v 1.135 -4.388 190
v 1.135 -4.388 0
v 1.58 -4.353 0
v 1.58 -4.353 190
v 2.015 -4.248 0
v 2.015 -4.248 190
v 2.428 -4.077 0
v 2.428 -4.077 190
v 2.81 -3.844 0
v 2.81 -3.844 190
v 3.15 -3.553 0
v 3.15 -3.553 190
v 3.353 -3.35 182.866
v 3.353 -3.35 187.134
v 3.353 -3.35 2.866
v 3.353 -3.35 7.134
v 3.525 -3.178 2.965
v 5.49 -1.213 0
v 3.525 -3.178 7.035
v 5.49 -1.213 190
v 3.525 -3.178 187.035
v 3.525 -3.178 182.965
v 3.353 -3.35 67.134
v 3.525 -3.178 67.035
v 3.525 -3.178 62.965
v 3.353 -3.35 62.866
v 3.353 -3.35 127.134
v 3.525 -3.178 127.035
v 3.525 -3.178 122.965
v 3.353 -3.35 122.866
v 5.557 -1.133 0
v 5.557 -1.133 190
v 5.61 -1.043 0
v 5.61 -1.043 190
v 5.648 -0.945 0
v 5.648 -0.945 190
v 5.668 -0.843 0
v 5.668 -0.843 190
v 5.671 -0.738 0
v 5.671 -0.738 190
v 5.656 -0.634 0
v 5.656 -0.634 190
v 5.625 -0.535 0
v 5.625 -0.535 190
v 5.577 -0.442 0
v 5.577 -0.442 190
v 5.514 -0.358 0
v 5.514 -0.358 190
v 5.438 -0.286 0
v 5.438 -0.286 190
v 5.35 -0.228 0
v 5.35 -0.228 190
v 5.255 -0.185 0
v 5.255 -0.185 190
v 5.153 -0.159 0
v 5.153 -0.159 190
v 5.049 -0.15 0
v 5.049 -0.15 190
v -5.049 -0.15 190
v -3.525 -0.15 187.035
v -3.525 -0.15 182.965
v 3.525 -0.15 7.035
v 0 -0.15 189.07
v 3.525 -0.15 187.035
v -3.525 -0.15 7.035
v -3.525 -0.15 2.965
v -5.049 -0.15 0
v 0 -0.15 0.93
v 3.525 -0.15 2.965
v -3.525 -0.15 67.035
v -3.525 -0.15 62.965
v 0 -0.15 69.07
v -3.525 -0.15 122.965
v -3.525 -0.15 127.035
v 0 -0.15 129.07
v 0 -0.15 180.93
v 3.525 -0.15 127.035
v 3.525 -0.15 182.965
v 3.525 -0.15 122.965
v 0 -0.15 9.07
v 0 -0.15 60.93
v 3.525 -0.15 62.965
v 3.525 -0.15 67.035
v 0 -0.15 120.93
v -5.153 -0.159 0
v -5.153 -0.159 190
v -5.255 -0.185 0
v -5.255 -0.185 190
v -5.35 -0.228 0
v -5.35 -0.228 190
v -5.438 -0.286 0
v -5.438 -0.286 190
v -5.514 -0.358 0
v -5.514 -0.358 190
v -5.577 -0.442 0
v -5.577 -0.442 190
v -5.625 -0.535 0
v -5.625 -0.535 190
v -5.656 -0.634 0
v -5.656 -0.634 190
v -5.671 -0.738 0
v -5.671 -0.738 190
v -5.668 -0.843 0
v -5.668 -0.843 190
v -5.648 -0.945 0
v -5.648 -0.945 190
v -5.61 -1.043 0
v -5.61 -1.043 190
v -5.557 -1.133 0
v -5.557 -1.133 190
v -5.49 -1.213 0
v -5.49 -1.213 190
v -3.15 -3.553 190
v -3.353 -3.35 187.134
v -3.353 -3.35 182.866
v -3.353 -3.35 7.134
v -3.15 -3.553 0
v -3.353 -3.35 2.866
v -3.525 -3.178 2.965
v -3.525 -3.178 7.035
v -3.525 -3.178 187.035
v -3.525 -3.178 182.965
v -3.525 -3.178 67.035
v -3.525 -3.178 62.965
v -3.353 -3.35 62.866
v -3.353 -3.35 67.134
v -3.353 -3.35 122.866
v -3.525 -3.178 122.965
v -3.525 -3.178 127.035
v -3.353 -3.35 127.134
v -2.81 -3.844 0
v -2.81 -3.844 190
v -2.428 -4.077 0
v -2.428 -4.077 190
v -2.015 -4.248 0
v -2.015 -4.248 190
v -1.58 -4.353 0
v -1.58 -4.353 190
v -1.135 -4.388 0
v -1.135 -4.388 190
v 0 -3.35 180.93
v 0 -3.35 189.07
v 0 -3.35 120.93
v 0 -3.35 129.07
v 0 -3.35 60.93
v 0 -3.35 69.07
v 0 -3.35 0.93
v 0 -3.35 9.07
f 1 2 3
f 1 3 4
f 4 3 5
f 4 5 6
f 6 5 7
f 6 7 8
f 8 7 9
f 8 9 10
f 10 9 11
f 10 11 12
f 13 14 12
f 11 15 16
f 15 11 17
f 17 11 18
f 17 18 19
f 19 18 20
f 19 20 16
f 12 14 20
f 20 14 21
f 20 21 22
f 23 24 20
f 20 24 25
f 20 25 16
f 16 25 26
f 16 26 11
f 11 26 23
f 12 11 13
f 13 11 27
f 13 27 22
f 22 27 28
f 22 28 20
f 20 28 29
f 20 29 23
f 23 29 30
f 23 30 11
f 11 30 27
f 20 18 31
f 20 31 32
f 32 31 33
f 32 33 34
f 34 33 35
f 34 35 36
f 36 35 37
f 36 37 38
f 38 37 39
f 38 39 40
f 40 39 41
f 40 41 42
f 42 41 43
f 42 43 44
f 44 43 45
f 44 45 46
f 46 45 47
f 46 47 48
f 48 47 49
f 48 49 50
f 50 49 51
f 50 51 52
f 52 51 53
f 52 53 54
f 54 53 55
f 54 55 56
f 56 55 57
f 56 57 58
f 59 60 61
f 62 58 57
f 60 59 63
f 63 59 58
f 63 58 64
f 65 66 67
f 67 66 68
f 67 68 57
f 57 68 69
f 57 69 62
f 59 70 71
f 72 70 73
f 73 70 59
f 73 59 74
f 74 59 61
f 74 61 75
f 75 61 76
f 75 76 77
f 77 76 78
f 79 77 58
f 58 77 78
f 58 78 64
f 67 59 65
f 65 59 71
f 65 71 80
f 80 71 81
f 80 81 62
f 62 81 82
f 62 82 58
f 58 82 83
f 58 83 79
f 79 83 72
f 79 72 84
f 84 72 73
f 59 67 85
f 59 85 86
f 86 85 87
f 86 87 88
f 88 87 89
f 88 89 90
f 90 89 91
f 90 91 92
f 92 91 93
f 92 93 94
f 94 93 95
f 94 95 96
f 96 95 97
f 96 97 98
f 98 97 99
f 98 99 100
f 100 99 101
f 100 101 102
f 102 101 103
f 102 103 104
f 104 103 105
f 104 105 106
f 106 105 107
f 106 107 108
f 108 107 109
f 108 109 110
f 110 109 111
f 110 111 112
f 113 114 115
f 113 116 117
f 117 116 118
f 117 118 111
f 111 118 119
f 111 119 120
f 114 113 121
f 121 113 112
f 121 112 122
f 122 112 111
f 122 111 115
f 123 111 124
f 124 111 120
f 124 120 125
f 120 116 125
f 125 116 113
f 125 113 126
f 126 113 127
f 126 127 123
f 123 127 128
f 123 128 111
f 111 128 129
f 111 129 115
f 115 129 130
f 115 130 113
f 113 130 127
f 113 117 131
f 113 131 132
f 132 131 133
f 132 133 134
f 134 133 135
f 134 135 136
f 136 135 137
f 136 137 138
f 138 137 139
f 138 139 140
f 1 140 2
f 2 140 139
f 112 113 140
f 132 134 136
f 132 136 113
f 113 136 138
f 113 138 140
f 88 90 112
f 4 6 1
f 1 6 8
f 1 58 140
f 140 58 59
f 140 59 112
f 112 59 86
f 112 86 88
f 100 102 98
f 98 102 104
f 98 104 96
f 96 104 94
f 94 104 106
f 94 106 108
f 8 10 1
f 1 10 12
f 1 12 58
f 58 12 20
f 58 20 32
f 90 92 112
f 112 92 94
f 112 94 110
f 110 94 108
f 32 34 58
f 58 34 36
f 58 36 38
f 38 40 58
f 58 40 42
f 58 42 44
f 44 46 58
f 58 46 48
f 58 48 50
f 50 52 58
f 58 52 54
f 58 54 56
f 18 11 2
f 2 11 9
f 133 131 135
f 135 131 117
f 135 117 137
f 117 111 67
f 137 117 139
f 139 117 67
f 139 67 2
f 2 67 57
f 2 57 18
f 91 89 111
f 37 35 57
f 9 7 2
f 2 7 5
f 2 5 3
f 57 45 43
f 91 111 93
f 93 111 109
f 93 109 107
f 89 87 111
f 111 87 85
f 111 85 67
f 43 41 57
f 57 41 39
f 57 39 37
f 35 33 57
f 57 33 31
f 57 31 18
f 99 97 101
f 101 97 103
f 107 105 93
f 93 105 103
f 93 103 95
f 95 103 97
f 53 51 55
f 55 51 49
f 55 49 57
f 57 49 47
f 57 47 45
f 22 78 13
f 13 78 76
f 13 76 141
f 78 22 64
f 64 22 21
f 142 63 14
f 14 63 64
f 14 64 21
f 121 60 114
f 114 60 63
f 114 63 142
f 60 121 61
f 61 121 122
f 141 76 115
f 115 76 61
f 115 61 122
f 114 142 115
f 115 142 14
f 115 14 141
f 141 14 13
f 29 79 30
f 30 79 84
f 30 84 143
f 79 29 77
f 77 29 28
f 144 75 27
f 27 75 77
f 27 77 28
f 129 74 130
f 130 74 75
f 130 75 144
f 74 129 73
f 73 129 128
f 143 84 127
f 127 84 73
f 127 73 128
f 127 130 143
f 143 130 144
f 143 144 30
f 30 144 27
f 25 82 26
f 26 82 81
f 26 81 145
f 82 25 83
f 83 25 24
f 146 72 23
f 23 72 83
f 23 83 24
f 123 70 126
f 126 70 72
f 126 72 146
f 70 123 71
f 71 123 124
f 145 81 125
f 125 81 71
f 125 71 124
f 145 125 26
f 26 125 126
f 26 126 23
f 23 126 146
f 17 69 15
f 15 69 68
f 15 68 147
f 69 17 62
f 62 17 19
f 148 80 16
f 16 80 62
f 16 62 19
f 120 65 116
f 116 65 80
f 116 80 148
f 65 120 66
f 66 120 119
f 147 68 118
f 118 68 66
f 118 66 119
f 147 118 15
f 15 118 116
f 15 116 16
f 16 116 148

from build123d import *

# Parameters (mm, degrees)
BOSS_EXTRUDE1_DEPTH = 190
CUT_EXTRUDE1_DEPTH  = 3.2


with BuildPart() as part:
    # Sketch1 → Boss-Extrude1 (new body)
    with BuildSketch(Plane(origin=(0, 0, 0), x_dir=(-1, 0, 0), z_dir=(0, 0, 1))):
        with BuildLine():
            Line((-1.134570377, 4.387902266), (1.134570572, 4.387902266))
            ThreePointArc((1.134570572, 4.387902266), (2.22521788, 4.17095913), (3.149824172, 3.553157318))
            Line((3.149824172, 3.553157318), (5.489602344, 1.213380832))
            ThreePointArc((5.489602344, 1.213380832), (5.624633323, 0.534535222), (5.049135806, 0.15))
            Line((5.049135806, 0.15), (-5.049135806, 0.15))
            ThreePointArc((-5.049135806, 0.15), (-5.624631872, 0.534534102), (-5.489601617, 1.213377992))
            Line((-5.489601617, 1.213377992), (-3.149825429, 3.553155866))
            ThreePointArc((-3.149825429, 3.553155866), (-2.225218633, 4.170958737), (-1.134570377, 4.387902266))
        make_face()
    extrude(amount=BOSS_EXTRUDE1_DEPTH)

    # Sketch2 → Cut-Extrude1 (cut)
    with BuildSketch(Plane(origin=(0, -0.15, 0), x_dir=(1, 0, 0), z_dir=(0, 1, 0))):
        Polygon((0, -0.929680602), (-3.525, -2.964840301), (-3.525, -7.035159699), (0, -9.070319398), (3.525, -7.035159699), (3.525, -2.964840301), align=None)
        Polygon((0, -60.929680602), (-3.525, -62.964840301), (-3.525, -67.035159699), (0, -69.070319398), (3.525, -67.035159699), (3.525, -62.964840301), align=None)
        Polygon((0, -120.929680602), (-3.525, -122.964840301), (-3.525, -127.035159699), (0, -129.070319398), (3.525, -127.035159699), (3.525, -122.964840301), align=None)
        Polygon((0, -180.929680602), (-3.525, -182.964840301), (-3.525, -187.035159699), (0, -189.070319398), (3.525, -187.035159699), (3.525, -182.964840301), align=None)
    extrude(amount=-CUT_EXTRUDE1_DEPTH, mode=Mode.SUBTRACT)


solid = part.part
